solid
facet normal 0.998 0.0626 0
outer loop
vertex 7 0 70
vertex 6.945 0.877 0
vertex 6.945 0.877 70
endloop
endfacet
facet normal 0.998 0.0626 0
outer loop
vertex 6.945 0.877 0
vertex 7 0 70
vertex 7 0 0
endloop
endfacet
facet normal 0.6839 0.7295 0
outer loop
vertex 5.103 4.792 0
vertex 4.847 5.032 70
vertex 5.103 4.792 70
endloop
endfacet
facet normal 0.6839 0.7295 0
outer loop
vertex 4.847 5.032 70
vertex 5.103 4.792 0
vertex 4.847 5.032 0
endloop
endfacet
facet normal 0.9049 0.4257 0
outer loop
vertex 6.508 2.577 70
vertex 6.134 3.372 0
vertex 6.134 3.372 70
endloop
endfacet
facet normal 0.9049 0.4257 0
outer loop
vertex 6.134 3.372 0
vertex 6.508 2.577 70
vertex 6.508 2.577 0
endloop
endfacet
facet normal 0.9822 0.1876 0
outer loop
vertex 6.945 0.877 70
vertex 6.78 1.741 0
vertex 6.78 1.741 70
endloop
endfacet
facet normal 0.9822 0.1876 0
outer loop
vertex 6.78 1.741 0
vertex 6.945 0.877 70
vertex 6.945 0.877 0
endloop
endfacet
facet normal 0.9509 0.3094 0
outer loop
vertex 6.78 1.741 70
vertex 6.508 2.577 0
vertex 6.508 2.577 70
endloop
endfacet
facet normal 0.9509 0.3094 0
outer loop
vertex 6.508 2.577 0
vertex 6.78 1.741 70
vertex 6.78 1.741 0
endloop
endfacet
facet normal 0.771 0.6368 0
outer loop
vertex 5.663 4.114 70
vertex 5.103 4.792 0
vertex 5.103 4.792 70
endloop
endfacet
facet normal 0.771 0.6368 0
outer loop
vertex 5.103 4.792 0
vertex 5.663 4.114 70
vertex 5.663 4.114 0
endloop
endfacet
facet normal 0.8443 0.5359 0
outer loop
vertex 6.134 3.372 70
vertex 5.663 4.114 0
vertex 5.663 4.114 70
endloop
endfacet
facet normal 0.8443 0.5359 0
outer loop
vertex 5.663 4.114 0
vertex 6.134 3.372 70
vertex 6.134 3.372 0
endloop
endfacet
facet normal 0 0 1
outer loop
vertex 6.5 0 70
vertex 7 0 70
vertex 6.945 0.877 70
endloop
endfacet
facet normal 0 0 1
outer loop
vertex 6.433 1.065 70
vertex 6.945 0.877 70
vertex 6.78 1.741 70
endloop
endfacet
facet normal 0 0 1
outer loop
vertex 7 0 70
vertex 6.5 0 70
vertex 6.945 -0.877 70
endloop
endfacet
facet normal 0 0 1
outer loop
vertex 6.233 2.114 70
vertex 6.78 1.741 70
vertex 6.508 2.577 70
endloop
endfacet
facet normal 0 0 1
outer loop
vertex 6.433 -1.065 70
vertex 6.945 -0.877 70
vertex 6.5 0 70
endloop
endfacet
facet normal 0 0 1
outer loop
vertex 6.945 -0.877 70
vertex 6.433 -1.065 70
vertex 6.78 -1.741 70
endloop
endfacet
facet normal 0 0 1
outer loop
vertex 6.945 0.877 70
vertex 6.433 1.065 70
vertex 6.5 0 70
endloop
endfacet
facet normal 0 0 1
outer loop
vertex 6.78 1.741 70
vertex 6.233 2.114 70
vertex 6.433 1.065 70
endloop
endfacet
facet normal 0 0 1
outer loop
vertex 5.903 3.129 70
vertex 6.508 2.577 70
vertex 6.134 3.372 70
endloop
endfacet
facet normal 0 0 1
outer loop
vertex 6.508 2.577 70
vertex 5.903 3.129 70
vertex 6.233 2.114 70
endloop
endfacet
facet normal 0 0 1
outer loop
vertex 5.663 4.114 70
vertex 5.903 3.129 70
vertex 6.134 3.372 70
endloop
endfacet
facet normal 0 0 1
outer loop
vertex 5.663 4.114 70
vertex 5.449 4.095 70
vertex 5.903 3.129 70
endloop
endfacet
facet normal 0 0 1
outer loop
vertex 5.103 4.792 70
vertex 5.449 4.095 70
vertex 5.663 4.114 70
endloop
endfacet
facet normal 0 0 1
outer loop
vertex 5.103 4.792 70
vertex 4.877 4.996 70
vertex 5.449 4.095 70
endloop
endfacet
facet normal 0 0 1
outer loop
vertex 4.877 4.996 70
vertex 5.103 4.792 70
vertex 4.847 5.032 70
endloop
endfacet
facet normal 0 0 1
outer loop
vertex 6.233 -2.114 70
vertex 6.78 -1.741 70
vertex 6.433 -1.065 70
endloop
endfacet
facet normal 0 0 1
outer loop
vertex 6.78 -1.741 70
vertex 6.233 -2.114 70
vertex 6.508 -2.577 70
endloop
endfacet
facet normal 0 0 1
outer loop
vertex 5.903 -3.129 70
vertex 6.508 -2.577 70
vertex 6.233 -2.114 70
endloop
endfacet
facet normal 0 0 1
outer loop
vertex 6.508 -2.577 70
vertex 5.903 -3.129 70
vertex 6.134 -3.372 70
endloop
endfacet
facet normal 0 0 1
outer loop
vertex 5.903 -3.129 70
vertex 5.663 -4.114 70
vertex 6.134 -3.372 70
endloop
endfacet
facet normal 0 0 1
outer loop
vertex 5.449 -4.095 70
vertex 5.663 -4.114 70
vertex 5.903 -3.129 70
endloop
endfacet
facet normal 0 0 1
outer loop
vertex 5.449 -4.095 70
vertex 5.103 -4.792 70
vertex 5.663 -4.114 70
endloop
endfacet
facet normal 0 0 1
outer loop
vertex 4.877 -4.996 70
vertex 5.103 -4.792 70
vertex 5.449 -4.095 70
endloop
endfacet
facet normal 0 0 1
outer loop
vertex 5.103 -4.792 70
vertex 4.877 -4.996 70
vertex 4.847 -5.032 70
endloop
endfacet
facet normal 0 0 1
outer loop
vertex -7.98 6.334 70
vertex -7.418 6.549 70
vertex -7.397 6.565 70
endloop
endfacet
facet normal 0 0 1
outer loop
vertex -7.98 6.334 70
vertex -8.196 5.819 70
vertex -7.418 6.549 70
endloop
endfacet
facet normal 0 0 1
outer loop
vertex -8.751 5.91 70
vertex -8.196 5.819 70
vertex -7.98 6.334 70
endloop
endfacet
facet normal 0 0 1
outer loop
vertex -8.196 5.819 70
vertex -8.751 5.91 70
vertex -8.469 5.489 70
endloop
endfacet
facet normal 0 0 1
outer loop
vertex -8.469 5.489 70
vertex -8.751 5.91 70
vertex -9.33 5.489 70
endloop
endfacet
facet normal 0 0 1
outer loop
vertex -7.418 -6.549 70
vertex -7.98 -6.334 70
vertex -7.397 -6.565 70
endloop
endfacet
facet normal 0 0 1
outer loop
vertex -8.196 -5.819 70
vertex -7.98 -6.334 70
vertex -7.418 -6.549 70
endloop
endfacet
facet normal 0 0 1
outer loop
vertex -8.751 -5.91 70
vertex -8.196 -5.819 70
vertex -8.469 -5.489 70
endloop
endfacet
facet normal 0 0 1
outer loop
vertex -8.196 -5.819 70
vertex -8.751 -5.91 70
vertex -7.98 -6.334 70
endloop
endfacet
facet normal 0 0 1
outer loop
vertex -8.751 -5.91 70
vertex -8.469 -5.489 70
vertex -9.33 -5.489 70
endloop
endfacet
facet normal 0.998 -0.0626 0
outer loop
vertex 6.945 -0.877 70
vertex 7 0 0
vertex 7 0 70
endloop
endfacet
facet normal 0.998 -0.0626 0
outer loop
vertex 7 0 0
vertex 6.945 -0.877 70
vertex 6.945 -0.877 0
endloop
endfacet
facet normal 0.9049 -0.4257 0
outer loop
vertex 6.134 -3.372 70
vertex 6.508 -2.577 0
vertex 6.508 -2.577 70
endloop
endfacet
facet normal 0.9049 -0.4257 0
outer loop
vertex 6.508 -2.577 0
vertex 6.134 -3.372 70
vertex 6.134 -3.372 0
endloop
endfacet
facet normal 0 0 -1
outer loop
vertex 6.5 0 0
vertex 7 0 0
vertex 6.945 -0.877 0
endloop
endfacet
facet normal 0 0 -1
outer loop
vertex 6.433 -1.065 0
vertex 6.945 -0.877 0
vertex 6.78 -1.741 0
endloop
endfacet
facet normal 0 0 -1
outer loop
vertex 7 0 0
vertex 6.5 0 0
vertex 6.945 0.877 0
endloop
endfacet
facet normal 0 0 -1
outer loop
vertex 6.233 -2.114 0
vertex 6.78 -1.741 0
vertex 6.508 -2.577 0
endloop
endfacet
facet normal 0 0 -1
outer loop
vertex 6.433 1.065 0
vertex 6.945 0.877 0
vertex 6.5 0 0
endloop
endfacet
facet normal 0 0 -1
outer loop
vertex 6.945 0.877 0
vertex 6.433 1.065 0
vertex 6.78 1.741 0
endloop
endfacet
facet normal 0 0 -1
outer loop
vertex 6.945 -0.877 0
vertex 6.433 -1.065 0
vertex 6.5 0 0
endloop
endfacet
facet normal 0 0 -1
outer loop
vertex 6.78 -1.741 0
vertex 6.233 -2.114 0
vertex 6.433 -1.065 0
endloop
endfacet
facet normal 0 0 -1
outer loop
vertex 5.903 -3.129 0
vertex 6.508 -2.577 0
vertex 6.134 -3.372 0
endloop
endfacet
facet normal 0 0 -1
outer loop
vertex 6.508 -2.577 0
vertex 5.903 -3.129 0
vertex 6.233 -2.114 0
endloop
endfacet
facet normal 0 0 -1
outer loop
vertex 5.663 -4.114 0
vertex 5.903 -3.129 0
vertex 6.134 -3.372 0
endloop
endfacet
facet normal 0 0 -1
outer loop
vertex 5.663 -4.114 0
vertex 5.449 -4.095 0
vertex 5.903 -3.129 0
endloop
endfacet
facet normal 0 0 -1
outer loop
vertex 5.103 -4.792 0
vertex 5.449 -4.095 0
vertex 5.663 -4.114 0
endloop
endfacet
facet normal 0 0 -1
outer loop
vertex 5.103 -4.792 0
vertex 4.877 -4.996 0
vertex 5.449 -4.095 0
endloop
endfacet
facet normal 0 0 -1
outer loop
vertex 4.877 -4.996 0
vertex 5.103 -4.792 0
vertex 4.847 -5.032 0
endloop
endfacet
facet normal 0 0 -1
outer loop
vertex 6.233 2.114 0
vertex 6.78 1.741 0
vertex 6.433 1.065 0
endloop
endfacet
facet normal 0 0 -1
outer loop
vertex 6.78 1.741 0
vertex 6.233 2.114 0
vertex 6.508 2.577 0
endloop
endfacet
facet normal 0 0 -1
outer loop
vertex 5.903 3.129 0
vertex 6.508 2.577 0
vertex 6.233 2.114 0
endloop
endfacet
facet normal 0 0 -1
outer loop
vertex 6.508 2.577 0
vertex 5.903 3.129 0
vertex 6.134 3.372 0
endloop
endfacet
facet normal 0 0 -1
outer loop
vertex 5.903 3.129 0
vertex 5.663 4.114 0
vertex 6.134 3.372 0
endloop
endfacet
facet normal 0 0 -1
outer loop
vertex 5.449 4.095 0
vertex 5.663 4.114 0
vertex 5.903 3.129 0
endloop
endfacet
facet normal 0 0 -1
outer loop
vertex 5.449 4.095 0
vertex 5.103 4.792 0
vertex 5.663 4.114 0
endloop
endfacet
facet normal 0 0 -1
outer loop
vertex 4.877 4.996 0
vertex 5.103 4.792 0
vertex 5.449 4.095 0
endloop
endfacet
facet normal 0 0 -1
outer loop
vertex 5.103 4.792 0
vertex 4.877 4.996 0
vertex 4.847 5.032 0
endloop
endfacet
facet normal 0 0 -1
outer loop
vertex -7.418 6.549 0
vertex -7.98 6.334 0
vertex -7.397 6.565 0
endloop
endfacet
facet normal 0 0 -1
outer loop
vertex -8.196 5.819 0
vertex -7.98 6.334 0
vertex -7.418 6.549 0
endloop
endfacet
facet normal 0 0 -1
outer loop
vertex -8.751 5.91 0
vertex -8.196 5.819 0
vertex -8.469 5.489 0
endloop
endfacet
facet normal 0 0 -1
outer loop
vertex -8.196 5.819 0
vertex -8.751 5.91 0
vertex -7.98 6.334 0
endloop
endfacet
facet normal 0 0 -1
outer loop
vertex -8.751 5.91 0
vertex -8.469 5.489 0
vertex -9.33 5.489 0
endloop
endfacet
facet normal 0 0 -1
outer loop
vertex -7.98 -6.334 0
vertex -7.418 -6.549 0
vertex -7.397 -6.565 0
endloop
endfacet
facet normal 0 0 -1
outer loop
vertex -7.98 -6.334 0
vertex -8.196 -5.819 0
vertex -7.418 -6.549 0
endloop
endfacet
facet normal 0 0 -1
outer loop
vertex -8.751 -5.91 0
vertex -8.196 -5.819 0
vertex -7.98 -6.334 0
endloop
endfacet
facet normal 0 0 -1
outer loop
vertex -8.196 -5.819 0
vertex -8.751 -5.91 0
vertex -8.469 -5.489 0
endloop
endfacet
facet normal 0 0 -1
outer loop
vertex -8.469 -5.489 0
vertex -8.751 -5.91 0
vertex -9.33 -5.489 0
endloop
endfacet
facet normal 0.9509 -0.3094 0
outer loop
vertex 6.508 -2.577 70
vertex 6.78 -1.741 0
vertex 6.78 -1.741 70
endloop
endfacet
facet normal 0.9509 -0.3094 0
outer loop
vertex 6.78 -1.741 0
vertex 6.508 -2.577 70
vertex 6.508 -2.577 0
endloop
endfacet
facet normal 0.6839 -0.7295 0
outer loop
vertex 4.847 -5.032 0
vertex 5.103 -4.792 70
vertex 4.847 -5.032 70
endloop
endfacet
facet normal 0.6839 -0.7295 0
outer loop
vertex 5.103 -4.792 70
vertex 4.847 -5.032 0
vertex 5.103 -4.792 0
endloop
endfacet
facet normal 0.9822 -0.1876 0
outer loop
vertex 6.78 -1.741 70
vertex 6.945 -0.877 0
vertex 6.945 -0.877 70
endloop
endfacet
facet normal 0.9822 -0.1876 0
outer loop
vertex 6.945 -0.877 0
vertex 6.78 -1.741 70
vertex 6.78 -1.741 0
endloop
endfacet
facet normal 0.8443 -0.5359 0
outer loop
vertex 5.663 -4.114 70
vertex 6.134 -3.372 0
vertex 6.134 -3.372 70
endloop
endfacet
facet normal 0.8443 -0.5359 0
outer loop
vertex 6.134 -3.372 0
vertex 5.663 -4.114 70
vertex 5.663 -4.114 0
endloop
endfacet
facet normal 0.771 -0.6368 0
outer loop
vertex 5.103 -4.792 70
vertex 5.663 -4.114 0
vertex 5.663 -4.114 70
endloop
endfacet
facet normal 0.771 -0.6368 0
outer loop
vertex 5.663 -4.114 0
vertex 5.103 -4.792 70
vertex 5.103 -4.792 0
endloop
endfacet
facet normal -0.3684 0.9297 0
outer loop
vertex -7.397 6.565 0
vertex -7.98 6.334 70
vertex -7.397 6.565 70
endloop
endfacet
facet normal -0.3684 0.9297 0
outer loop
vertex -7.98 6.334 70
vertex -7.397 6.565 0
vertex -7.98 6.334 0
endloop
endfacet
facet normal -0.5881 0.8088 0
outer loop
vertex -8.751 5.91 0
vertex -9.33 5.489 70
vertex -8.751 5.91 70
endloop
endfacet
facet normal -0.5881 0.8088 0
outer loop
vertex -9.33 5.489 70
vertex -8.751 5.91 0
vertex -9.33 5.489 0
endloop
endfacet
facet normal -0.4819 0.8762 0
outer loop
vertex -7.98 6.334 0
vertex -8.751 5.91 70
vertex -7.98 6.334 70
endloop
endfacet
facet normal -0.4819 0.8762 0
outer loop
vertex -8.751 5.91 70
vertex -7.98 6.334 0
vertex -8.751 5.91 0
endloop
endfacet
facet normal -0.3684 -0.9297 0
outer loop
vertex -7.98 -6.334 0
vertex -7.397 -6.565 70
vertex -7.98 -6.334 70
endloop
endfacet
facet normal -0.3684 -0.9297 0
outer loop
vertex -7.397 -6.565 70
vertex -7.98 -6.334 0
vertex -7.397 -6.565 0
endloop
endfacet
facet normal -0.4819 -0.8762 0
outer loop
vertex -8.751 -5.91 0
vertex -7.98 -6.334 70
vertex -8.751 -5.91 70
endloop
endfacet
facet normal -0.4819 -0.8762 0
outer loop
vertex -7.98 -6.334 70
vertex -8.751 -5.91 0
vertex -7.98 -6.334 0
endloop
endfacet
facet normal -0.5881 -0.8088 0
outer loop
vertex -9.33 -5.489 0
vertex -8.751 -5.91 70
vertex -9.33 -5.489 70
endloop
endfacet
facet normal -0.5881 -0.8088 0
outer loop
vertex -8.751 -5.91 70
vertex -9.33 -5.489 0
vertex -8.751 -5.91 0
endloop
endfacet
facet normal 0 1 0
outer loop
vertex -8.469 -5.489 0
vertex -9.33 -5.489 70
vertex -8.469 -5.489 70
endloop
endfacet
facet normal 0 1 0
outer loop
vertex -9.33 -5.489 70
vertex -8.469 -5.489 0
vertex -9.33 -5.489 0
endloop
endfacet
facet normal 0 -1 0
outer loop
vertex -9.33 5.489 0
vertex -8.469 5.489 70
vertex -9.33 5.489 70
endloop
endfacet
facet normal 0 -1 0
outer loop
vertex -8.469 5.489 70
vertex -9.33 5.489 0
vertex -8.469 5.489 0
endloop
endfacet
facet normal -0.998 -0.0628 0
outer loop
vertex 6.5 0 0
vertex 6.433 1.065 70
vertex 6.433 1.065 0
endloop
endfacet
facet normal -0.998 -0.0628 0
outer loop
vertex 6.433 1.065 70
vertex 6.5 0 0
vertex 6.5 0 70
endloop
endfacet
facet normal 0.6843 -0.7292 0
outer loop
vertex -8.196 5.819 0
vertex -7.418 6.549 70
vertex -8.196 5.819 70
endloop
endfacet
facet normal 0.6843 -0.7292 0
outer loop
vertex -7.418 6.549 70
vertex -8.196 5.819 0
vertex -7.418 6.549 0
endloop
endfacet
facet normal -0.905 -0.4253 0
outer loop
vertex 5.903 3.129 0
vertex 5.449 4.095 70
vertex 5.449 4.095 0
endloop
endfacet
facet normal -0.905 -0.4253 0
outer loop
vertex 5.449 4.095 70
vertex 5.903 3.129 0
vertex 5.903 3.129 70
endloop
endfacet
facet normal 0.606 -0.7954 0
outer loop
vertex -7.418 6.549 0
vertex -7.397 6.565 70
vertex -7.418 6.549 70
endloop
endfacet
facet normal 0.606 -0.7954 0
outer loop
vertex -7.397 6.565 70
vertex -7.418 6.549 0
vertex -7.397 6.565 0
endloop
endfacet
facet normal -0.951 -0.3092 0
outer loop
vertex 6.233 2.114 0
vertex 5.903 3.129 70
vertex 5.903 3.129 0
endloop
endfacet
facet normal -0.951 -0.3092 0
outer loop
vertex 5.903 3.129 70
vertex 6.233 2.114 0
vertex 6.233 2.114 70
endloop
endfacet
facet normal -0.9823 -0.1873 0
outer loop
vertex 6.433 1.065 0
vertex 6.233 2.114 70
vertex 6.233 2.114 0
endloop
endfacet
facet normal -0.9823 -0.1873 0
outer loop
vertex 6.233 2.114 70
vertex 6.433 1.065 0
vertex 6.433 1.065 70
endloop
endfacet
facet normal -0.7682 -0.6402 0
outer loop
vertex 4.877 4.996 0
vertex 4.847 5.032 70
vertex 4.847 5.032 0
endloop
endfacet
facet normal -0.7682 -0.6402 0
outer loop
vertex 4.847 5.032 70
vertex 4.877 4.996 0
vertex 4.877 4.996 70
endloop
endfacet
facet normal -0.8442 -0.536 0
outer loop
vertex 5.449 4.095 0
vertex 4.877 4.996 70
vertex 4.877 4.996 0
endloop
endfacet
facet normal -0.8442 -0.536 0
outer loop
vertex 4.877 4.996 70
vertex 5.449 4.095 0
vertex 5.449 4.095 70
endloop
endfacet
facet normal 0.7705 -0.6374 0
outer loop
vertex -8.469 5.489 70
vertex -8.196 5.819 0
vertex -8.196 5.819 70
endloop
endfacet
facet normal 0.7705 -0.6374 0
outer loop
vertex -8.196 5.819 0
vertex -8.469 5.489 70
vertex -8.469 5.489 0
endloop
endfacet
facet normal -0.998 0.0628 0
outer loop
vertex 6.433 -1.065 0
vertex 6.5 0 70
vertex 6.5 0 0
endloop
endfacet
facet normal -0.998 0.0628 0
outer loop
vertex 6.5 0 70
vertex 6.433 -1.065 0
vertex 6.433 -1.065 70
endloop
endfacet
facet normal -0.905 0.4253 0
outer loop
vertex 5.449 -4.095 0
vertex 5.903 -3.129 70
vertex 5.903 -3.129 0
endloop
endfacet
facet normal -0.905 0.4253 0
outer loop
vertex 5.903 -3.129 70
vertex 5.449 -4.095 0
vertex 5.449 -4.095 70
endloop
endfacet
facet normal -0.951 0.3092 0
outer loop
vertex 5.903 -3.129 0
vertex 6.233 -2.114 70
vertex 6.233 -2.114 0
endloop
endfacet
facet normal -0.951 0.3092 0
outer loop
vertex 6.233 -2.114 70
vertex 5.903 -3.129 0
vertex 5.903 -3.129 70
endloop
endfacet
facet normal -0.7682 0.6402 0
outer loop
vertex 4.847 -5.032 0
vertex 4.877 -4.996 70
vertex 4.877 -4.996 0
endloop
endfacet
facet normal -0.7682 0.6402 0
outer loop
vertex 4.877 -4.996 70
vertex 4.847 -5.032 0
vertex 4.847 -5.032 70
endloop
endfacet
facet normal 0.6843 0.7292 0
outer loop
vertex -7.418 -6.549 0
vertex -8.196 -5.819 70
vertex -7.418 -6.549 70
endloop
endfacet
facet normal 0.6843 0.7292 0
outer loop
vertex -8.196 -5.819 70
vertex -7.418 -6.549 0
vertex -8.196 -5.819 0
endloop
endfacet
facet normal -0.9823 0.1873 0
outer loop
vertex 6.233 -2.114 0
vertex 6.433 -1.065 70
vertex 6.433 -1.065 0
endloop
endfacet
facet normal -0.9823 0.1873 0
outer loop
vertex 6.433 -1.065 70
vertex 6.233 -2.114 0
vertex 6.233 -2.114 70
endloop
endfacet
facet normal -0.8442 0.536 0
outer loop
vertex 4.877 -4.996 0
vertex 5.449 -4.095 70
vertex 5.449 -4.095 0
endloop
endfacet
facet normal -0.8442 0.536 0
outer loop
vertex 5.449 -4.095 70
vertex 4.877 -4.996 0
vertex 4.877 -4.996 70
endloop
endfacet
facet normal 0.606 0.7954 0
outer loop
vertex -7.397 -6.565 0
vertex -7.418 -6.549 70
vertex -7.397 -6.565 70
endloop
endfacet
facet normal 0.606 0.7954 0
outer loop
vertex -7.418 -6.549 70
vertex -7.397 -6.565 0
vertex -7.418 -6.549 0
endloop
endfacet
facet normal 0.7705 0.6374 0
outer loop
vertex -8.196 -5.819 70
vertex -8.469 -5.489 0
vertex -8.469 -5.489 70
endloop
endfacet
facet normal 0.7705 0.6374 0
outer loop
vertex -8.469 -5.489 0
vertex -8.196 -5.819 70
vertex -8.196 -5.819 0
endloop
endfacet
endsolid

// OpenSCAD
$fn = 50;


difference() {
	union() {
		cylinder(h = 70, r = 7.0000000000);
		translate(v = [-5.0000000000, 0, 0]) {
			cylinder(h = 70, r = 7.0000000000);
		}
	}
	union() {
		cylinder(h = 70, r = 3.2500000000);
		cylinder(h = 70, r = 1.8000000000);
		cylinder(h = 70, r = 1.8000000000);
		cylinder(h = 70, r = 1.8000000000);
		translate(v = [-9.5000000000, 0, 0]) {
			hull() {
				translate(v = [-3.7500000000, 0.0000000000, 0]) {
					cylinder(h = 70, r = 5.5000000000);
				}
				translate(v = [3.7500000000, 0.0000000000, 0]) {
					cylinder(h = 70, r = 5.5000000000);
				}
				translate(v = [-3.7500000000, -0.0000000000, 0]) {
					cylinder(h = 70, r = 5.5000000000);
				}
				translate(v = [3.7500000000, -0.0000000000, 0]) {
					cylinder(h = 70, r = 5.5000000000);
				}
			}
		}
		translate(v = [-2.0000000000, 0, 0.0000000000]) {
			cylinder(h = 70, r = 8.5000000000);
		}
	}
}
